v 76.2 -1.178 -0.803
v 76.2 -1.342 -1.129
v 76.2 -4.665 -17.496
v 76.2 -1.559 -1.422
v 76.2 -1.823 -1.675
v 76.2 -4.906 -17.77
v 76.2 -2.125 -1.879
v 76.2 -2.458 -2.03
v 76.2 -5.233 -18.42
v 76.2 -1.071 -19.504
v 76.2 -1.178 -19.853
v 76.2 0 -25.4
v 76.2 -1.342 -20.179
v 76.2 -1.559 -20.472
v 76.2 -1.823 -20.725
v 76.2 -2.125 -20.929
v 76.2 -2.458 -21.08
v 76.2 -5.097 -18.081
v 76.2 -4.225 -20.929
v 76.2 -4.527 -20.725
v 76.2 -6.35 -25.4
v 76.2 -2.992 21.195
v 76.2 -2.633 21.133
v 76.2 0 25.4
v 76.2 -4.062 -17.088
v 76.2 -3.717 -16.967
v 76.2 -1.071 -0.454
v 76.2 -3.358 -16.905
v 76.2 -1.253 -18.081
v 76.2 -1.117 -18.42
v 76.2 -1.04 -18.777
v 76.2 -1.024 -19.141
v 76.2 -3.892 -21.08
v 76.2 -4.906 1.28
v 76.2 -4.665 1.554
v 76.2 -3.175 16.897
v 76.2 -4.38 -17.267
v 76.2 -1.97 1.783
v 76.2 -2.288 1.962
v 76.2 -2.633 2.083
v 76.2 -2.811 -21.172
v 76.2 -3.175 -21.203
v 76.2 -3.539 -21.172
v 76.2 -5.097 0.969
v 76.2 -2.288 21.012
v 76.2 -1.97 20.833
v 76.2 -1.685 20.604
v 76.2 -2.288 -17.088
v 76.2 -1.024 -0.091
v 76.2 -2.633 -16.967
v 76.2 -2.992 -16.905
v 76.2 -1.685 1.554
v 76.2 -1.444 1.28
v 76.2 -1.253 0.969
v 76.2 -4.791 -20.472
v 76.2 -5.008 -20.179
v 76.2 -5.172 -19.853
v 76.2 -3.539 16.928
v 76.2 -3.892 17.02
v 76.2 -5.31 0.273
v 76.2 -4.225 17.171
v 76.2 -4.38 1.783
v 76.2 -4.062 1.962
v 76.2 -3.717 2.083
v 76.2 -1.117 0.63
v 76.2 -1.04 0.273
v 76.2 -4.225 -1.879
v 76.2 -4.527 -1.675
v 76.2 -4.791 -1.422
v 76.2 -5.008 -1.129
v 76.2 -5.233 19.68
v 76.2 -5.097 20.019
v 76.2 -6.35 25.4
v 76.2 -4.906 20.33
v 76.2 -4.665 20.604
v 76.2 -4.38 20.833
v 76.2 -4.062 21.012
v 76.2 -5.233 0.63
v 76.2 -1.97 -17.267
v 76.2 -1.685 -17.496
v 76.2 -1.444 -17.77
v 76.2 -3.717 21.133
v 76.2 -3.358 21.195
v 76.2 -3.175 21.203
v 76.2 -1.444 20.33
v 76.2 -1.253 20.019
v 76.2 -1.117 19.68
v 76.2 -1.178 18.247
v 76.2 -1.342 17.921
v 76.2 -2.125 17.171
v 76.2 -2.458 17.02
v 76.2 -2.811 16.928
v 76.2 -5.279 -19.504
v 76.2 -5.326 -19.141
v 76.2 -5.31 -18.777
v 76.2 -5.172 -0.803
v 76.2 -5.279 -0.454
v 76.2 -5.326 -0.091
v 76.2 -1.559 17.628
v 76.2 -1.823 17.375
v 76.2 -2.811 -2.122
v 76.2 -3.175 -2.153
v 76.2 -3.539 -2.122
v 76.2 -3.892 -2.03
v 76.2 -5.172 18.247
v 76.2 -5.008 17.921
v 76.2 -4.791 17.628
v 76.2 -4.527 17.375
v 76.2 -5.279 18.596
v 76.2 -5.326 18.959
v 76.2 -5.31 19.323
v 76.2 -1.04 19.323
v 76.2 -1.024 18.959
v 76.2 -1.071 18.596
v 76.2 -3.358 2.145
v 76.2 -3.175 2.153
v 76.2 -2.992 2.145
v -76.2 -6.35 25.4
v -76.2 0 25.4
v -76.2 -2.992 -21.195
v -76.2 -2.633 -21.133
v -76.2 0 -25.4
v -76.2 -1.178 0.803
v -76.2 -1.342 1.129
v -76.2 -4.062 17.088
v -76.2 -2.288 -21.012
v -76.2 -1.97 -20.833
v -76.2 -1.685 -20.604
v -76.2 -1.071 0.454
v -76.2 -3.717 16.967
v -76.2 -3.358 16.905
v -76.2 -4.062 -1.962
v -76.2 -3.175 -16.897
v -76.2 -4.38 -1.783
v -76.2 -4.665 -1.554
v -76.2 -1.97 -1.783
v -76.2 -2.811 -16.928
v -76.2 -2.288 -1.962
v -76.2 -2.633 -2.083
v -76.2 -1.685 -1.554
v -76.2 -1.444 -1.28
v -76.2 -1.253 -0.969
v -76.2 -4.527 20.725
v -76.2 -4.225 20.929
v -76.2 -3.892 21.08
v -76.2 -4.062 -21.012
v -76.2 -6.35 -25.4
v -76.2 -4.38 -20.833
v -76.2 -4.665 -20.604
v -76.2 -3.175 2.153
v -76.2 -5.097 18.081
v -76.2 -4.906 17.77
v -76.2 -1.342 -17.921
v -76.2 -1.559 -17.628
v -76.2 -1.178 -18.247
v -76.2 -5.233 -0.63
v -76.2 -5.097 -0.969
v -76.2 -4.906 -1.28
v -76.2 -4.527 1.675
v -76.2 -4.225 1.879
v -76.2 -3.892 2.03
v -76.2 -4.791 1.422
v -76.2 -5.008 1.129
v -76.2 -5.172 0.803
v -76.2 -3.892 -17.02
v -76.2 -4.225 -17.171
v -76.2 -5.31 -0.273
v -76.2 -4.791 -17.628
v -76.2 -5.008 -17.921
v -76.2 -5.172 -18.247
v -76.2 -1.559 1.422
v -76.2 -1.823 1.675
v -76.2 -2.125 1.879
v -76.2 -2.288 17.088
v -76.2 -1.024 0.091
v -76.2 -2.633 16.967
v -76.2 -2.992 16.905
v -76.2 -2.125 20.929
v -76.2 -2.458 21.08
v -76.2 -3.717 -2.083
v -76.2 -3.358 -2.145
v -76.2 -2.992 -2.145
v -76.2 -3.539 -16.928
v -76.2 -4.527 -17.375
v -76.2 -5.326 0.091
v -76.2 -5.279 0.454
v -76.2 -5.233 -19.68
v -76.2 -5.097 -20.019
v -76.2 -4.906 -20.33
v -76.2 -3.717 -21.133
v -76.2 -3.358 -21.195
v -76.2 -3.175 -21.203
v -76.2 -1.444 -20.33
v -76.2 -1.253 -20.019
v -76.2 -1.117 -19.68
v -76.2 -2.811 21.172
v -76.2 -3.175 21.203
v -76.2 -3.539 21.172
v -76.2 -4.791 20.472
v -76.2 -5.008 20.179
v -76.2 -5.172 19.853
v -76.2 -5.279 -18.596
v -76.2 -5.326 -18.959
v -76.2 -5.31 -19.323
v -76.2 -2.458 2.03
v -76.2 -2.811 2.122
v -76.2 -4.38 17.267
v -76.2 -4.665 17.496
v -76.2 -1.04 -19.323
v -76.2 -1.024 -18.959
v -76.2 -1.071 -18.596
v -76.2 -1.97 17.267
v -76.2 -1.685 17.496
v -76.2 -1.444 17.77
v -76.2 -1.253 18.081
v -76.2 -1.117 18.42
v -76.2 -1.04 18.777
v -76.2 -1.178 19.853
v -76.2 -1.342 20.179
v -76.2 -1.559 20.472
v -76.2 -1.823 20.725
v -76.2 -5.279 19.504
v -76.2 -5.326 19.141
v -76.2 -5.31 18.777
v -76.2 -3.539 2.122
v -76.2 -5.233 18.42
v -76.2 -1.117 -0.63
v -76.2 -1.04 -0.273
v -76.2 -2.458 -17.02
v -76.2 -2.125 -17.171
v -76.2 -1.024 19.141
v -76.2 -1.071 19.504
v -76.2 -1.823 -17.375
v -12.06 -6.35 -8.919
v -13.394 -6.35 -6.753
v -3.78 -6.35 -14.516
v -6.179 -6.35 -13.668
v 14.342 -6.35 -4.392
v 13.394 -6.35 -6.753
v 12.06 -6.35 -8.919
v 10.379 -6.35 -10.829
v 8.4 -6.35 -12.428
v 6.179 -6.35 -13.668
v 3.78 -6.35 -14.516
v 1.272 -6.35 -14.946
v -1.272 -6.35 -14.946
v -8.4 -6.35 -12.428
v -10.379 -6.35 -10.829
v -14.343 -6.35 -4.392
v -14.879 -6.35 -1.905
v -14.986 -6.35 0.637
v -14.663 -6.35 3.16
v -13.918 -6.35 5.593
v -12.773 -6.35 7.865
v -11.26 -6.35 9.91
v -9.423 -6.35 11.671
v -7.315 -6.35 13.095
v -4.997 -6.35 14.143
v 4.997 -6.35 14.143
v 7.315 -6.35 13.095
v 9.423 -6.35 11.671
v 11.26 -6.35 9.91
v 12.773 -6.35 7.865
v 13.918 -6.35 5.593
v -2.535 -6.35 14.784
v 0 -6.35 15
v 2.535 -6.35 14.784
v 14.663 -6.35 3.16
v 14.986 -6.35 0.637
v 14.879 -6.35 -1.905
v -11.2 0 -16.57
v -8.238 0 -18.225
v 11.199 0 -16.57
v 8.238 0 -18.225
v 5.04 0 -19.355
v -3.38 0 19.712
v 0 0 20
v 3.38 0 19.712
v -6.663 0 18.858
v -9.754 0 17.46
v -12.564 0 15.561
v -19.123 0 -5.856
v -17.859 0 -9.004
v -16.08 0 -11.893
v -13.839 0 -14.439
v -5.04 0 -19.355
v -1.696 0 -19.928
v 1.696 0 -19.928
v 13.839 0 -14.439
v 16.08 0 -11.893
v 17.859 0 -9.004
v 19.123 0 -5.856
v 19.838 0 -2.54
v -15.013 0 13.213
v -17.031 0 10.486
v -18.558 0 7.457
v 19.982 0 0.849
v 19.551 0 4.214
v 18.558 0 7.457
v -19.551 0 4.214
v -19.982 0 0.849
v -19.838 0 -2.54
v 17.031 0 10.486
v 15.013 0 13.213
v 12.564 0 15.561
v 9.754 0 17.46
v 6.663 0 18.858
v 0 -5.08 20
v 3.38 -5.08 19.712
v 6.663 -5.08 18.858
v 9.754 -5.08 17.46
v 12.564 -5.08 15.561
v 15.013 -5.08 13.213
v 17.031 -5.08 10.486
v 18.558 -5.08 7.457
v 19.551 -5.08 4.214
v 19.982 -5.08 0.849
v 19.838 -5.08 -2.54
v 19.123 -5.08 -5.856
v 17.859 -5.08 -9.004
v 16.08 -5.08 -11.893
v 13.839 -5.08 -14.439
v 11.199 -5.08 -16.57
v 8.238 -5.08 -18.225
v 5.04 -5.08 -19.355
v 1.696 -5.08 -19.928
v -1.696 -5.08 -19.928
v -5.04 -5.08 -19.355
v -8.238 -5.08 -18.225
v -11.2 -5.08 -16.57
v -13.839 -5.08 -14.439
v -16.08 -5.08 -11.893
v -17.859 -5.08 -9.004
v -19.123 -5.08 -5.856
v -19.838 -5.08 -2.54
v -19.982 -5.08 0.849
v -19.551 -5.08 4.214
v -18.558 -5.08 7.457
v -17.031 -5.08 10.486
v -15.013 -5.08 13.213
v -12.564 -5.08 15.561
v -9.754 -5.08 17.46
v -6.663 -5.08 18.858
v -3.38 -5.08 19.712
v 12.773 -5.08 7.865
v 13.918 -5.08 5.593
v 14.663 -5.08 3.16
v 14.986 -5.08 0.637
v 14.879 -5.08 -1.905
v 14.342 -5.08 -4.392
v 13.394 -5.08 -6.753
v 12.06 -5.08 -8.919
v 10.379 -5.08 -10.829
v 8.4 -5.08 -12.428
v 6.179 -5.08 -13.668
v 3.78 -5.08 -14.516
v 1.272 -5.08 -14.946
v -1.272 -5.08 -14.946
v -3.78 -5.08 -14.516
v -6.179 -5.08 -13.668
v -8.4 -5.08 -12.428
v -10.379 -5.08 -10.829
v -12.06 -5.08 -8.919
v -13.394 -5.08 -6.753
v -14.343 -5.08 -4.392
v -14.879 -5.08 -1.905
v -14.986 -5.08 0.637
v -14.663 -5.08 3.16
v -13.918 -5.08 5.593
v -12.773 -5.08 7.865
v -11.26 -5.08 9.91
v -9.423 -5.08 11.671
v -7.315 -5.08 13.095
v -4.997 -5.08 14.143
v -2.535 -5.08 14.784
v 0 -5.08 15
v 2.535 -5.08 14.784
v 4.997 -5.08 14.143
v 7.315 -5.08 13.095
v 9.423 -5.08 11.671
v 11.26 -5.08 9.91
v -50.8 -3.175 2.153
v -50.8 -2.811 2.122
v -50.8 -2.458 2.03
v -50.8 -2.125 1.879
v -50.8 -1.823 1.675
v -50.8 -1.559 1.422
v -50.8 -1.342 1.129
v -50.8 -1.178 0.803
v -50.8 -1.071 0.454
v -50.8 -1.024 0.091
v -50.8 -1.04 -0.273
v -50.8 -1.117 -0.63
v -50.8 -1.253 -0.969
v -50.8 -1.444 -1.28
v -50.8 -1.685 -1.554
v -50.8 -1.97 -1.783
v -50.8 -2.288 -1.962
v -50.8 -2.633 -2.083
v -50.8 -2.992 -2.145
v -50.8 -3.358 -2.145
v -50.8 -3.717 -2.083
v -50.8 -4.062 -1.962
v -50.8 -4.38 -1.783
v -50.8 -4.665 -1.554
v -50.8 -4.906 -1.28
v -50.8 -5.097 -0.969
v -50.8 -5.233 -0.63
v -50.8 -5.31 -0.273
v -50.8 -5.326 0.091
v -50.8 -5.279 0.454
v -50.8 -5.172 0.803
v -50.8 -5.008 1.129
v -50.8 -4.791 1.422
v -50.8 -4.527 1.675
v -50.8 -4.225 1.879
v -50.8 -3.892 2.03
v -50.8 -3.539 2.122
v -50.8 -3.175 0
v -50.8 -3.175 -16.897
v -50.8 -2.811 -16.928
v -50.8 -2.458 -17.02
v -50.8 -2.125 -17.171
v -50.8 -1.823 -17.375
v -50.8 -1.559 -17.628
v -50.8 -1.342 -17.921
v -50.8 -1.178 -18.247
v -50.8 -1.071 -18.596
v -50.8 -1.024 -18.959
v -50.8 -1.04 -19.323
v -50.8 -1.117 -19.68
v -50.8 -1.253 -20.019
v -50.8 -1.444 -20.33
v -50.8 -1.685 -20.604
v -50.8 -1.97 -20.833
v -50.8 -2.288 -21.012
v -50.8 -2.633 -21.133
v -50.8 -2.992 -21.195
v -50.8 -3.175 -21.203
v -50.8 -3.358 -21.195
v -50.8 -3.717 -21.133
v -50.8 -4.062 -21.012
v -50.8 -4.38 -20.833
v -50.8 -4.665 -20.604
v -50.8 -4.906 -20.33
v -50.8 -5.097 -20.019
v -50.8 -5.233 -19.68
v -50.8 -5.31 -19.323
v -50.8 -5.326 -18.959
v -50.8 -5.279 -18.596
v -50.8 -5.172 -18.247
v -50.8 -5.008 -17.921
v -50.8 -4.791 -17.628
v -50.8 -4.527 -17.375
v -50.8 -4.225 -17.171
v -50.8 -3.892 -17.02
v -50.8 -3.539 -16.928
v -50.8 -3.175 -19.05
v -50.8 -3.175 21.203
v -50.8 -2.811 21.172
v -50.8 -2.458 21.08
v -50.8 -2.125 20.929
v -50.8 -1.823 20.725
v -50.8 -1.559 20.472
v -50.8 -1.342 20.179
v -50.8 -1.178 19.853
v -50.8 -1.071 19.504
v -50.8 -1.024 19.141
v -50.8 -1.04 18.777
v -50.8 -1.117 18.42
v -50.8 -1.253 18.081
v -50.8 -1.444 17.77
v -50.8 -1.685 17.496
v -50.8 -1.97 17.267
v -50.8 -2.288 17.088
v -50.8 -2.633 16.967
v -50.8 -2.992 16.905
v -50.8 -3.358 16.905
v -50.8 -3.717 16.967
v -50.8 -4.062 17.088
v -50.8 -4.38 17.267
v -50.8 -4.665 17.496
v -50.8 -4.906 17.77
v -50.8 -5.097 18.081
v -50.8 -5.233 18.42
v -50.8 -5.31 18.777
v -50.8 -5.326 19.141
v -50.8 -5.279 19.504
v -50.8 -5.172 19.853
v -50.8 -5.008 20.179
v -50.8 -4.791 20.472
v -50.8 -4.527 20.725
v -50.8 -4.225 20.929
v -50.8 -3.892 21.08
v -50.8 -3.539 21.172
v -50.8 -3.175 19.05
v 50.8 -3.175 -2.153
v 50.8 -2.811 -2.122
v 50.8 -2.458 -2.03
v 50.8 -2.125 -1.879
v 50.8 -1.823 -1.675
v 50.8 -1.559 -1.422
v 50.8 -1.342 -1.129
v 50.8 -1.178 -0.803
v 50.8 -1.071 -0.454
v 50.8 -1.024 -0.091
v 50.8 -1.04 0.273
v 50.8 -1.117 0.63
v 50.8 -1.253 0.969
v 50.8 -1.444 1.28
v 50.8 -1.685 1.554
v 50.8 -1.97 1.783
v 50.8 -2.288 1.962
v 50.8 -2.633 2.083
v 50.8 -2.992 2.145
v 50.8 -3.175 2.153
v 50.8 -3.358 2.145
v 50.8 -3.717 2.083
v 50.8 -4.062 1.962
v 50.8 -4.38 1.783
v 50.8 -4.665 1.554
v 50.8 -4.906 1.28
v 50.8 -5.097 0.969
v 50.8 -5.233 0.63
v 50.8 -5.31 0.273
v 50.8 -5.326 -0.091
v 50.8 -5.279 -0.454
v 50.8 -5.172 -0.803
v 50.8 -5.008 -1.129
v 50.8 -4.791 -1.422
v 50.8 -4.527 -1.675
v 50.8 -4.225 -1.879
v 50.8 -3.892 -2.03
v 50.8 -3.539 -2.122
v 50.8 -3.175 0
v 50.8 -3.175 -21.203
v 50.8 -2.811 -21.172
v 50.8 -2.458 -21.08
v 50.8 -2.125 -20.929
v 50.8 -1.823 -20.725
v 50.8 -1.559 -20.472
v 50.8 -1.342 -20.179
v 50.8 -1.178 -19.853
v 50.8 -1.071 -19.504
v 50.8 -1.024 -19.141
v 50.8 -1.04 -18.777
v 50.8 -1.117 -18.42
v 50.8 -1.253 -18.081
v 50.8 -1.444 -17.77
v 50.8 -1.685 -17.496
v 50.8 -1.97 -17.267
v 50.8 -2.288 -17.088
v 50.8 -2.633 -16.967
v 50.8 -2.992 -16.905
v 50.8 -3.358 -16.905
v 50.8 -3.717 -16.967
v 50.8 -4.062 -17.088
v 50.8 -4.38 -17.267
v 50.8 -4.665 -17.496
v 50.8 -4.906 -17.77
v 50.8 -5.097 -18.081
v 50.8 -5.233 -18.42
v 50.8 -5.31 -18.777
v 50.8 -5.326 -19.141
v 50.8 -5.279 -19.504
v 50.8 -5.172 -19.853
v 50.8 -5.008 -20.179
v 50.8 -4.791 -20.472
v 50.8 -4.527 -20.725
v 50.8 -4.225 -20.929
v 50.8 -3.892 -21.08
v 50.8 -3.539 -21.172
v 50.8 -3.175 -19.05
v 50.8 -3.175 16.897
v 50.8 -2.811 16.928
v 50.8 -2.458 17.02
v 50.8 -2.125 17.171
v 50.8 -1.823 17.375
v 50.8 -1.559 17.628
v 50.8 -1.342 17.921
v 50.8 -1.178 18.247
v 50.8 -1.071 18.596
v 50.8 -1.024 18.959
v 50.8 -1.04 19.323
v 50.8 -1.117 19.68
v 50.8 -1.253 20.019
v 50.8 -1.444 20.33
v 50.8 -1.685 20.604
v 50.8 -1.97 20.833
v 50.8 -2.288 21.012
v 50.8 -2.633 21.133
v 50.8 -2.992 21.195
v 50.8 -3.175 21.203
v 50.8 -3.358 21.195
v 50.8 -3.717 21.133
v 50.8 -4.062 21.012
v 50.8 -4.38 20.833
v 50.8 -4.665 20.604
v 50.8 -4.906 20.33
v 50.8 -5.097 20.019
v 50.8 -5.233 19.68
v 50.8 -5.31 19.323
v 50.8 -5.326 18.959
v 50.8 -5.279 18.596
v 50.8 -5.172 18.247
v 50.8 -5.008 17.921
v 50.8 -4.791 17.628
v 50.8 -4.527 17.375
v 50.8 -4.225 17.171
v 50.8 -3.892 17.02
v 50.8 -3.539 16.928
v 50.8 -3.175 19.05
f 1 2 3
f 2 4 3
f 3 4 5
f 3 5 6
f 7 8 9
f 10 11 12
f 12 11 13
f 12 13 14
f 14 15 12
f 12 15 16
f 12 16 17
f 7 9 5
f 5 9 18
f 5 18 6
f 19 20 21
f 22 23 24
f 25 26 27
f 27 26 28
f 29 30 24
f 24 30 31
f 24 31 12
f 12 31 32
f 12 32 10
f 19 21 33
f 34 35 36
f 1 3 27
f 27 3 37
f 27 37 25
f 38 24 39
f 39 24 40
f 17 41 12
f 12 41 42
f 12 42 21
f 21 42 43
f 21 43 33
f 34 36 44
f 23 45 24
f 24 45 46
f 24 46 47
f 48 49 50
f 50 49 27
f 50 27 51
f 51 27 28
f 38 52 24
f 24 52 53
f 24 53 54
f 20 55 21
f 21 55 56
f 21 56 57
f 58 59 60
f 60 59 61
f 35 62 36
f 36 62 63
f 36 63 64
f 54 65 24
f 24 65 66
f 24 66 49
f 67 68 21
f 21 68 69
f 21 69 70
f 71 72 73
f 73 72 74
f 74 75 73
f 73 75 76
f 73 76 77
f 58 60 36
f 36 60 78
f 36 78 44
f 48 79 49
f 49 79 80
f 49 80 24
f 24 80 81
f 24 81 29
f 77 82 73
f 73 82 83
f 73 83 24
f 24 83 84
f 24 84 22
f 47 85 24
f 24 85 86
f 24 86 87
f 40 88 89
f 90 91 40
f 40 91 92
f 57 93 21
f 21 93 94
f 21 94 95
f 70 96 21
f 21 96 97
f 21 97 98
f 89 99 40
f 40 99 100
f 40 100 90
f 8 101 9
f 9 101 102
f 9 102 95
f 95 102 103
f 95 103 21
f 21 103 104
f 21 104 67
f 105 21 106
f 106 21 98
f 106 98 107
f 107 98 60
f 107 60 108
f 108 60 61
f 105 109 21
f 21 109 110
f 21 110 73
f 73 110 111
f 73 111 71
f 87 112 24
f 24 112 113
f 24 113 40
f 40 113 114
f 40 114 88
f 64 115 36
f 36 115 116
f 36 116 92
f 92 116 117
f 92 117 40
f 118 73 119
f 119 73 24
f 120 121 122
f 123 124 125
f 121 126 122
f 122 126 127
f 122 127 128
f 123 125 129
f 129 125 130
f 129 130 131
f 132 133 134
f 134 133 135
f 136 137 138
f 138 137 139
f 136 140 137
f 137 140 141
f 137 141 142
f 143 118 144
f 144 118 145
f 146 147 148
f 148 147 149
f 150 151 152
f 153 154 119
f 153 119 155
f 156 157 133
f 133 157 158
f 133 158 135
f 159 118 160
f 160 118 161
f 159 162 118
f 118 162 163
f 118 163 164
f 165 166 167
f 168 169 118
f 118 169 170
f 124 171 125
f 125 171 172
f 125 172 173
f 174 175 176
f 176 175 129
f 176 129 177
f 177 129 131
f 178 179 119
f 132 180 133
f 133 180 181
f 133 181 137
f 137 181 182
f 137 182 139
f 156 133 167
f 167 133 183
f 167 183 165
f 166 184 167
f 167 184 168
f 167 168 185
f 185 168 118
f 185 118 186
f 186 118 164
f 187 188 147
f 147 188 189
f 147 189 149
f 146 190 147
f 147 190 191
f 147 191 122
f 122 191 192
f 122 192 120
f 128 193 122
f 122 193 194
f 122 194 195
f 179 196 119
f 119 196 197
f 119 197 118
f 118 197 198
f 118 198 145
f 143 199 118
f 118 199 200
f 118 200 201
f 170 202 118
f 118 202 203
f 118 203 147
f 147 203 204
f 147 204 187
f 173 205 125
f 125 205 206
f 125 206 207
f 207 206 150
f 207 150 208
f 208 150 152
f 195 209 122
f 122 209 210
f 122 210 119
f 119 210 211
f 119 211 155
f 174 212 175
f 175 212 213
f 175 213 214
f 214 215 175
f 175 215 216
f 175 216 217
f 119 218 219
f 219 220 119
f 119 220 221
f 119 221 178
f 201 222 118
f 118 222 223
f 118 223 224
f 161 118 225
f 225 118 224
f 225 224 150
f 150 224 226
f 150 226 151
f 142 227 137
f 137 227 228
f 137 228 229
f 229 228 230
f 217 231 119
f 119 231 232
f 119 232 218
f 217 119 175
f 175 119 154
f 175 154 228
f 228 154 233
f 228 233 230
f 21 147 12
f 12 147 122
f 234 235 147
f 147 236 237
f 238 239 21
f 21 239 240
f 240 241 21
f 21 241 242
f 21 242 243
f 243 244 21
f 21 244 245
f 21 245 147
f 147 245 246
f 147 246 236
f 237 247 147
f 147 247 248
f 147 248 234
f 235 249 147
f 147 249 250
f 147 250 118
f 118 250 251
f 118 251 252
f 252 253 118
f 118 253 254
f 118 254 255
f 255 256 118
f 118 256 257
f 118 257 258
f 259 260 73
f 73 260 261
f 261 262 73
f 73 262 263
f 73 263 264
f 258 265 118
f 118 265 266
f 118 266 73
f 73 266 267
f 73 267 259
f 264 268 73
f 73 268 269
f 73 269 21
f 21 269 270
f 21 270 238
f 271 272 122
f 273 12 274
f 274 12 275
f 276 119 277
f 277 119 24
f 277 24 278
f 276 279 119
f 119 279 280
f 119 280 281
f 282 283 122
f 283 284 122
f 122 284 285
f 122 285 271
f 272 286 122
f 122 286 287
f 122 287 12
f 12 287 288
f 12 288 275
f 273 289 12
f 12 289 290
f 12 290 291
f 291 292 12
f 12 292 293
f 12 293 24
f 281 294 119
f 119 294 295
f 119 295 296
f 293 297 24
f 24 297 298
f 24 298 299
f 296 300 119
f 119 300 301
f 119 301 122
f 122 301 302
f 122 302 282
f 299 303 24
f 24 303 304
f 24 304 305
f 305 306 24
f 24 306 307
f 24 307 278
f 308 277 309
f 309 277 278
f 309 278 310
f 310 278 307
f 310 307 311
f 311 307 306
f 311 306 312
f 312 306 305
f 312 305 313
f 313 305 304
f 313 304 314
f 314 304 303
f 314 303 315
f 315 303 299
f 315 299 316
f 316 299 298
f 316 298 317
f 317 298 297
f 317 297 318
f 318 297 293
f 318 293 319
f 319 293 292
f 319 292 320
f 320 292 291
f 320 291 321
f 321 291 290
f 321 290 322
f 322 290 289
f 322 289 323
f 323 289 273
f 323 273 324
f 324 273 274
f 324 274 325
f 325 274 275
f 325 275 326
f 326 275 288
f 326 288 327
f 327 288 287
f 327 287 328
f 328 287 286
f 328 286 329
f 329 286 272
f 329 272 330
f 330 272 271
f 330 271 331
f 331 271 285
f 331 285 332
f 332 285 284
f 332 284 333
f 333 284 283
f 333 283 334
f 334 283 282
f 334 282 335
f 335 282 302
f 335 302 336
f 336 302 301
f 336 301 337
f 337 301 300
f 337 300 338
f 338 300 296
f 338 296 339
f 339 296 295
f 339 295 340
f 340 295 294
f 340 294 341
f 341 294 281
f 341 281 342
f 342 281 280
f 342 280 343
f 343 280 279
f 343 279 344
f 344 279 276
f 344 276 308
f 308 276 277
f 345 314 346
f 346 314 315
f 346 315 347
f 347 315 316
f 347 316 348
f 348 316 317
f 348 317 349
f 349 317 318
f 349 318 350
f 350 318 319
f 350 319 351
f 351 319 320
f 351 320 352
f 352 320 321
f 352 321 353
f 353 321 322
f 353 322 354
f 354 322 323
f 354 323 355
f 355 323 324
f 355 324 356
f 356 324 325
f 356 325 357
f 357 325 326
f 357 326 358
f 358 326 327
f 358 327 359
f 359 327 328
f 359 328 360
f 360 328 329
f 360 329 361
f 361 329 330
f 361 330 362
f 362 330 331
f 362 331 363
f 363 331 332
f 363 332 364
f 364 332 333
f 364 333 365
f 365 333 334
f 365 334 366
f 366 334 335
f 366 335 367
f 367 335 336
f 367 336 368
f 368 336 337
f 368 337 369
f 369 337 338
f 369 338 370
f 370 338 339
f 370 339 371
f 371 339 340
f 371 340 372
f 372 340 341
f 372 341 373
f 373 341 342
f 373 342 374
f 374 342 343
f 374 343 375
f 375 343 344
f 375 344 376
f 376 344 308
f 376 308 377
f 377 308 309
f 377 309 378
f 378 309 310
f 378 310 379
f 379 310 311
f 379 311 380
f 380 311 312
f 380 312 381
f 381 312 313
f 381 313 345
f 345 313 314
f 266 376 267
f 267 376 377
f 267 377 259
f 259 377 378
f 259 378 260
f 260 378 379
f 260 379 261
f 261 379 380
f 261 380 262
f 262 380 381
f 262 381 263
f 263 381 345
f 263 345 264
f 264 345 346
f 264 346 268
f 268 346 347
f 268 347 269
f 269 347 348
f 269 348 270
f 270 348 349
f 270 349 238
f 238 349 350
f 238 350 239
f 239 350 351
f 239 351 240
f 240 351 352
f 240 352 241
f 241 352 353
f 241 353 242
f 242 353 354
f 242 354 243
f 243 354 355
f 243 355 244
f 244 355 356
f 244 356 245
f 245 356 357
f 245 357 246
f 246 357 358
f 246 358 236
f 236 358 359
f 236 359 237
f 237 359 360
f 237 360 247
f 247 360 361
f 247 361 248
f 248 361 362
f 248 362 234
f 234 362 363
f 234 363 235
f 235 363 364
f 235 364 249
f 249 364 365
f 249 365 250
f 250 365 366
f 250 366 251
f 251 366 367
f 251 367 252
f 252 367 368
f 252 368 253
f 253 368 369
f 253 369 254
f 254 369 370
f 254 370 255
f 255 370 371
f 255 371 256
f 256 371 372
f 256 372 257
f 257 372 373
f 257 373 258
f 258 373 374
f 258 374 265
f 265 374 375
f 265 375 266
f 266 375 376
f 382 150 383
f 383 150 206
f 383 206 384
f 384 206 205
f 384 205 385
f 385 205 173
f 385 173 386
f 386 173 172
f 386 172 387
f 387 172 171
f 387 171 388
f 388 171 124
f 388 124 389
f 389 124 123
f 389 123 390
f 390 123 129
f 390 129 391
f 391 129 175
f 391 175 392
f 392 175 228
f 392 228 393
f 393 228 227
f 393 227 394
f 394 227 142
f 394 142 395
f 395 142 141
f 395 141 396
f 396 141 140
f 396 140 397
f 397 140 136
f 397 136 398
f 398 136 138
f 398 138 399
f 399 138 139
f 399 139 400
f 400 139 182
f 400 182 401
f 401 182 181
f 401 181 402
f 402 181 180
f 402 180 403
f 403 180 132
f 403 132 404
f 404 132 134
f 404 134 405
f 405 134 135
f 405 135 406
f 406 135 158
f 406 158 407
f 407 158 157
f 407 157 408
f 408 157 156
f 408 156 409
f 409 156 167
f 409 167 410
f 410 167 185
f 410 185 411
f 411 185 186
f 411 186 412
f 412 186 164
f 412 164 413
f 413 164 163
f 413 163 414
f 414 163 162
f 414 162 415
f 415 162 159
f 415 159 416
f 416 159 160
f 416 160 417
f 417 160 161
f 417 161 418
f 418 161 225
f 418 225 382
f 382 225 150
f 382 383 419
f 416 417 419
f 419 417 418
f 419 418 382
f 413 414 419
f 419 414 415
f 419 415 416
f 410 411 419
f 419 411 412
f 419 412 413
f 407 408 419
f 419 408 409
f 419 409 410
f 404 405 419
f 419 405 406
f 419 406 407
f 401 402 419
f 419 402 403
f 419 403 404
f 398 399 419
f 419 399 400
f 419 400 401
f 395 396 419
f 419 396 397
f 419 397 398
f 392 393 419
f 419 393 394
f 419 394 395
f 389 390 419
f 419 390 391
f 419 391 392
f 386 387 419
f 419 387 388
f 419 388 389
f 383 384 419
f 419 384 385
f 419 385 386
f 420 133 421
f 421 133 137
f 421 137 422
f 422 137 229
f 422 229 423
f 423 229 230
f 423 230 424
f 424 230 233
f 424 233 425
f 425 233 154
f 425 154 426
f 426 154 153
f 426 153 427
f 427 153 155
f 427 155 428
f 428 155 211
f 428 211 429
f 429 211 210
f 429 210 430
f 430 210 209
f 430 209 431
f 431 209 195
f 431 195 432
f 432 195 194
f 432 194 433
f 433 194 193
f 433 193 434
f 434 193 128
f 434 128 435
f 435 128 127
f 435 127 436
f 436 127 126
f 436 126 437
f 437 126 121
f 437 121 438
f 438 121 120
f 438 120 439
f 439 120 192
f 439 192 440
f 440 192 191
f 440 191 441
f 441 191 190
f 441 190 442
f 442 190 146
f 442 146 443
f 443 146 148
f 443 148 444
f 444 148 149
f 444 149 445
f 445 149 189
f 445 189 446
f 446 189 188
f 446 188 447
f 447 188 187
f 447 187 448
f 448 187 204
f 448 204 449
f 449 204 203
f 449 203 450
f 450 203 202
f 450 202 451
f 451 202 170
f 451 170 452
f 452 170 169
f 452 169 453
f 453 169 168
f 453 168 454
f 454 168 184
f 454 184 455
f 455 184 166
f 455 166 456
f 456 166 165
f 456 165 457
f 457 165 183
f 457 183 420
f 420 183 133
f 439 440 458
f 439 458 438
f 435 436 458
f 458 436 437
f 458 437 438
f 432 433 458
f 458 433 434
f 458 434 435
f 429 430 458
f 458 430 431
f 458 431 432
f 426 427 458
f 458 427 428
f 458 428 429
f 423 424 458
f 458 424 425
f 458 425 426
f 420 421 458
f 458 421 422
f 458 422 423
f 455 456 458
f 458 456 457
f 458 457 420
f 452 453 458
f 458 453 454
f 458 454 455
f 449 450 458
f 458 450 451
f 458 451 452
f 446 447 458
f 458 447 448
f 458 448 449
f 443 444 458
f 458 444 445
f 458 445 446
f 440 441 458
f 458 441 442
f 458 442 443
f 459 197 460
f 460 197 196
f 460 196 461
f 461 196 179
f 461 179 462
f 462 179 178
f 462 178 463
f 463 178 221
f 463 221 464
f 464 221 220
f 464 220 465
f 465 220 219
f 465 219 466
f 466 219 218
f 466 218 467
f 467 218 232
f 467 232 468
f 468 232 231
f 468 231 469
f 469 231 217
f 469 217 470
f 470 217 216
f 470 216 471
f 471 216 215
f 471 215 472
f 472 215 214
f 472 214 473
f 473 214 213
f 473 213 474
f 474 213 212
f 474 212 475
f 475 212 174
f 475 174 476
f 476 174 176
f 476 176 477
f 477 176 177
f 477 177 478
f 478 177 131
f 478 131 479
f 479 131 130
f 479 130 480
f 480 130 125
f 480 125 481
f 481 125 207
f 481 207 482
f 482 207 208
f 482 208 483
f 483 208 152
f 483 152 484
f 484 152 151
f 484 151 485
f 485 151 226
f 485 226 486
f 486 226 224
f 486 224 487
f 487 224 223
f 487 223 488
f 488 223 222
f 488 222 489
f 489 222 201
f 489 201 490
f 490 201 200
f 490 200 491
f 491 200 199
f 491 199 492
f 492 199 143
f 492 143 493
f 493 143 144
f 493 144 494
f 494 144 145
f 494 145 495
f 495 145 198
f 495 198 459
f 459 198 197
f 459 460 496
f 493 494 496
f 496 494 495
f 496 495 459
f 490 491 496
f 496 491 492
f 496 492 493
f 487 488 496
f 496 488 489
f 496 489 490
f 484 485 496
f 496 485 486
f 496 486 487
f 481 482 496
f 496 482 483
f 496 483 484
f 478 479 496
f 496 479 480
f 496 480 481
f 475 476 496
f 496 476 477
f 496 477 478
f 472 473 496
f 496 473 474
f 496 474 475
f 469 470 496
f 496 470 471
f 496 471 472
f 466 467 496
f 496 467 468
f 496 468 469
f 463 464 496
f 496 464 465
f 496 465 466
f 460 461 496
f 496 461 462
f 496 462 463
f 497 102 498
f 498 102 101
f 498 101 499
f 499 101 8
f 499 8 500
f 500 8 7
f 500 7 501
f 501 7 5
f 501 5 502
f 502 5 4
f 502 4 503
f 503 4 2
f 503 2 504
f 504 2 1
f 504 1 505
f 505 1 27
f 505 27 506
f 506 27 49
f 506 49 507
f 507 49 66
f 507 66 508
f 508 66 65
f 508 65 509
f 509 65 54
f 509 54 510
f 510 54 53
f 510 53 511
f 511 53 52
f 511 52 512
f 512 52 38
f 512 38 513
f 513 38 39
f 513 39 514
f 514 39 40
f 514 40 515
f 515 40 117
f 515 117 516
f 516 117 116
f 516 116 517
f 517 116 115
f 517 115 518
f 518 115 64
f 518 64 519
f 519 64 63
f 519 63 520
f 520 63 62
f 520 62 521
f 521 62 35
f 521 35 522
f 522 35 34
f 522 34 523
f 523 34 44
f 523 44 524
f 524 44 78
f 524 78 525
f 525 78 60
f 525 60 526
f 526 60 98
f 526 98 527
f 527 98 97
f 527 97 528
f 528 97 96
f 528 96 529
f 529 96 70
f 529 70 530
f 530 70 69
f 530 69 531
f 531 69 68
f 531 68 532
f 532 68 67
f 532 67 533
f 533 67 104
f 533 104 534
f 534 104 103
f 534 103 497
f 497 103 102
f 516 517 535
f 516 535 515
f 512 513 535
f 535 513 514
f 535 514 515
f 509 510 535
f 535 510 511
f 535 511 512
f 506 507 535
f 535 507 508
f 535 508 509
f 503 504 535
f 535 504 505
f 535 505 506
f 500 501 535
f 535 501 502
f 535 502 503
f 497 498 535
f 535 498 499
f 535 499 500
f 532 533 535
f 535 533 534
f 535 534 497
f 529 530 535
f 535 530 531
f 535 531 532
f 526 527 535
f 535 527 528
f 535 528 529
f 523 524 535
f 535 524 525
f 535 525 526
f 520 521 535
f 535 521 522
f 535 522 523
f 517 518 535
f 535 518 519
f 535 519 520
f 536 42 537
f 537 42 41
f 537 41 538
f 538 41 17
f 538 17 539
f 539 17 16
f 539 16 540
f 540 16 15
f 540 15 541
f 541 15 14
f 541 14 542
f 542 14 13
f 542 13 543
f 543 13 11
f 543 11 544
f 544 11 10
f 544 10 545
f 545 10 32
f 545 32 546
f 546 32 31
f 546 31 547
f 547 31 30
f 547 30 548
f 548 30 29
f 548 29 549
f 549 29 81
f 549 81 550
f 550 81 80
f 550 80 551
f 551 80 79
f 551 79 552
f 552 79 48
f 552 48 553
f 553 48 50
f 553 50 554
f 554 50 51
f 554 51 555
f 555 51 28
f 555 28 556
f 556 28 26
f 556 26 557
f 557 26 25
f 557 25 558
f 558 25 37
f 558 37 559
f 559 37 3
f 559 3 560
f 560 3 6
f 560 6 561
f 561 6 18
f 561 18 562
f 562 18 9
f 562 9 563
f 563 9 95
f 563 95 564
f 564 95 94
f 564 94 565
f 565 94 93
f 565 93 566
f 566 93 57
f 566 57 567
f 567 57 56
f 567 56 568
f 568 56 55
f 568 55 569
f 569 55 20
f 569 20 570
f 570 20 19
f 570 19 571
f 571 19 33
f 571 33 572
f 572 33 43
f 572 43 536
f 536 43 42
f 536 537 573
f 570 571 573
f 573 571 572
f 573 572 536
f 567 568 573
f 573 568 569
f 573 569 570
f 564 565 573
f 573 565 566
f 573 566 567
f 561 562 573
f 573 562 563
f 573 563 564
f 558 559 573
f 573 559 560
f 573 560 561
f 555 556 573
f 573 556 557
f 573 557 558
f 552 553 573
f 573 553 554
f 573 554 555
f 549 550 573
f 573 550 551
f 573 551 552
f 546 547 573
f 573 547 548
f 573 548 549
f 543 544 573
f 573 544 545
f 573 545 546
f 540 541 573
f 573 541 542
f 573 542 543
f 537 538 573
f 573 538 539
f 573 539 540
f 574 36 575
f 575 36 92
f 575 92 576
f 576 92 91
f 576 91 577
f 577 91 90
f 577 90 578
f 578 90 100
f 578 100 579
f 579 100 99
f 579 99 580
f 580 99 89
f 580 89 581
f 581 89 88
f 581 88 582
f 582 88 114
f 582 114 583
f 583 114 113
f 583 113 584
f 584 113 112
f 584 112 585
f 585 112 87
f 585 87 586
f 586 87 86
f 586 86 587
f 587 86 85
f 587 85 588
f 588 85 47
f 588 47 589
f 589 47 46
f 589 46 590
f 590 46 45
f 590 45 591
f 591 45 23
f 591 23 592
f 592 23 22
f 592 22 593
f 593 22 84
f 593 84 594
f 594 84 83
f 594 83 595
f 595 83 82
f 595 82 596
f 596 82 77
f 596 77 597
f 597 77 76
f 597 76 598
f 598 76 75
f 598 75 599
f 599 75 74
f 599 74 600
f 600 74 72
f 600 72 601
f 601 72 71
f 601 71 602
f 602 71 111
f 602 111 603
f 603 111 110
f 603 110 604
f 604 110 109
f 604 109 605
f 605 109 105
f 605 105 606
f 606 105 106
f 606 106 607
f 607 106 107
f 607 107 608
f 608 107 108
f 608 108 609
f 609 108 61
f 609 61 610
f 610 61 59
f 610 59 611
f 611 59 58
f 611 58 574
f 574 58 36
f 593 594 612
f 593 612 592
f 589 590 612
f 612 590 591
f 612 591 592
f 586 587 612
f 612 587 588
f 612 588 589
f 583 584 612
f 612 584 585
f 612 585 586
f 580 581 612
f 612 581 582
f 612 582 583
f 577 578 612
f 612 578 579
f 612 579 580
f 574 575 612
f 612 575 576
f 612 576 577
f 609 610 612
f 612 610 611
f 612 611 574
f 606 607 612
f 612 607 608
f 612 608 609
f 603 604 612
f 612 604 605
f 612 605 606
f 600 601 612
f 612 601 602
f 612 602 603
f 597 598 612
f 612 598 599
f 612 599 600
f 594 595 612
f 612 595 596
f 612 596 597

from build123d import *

# Parameters (mm, degrees)
SKETCH1_W           = 152.4
SKETCH1_H           = 50.8
BOSS_EXTRUDE1_DEPTH = 6.35
SKETCH2_R           = 20
CUT_EXTRUDE1_DEPTH  = 5.08
SKETCH3_R           = 15
CUT_EXTRUDE2_DEPTH  = 81.48233595
SKETCH5_R           = 2.15265
CUT_EXTRUDE4_DEPTH  = 25.4


with BuildPart() as part:
    # Sketch1 → Boss-Extrude1 (new body)
    with BuildSketch(Plane(origin=(0, 0, 0), x_dir=(1, 0, 0), z_dir=(0, 1, 0))):
        Rectangle(SKETCH1_W, SKETCH1_H)
    extrude(amount=-BOSS_EXTRUDE1_DEPTH)

    # Sketch2 → Cut-Extrude1 (cut)
    with BuildSketch(Plane(origin=(0, 0, 0), x_dir=(1, 0, 0), z_dir=(0, 1, 0))):
        with Locations(Location((0, 0, 0), (0, 0, 270))):
            Circle(SKETCH2_R)
    extrude(amount=-CUT_EXTRUDE1_DEPTH, mode=Mode.SUBTRACT)

    # Sketch3 → Cut-Extrude2 (cut, through all)
    with BuildSketch(Plane(origin=(0, -5.08, 0), x_dir=(1, 0, 0), z_dir=(0, 1, 0))):
        with Locations(Location((0, 0, 0), (0, 0, 270))):
            Circle(SKETCH3_R)
    extrude(amount=-CUT_EXTRUDE2_DEPTH, mode=Mode.SUBTRACT)

    # Sketch5 → Cut-Extrude4 (cut)
    with BuildSketch(Plane.ZY.offset(76.2)):
        with Locations((0, -3.175)):
            Circle(SKETCH5_R)
        with Locations((19.05, -3.175)):
            Circle(SKETCH5_R)
        with Locations(Location((-19.05, -3.175, 0), (0, 0, 180))):
            Circle(SKETCH5_R)
    cut_extrude4 = extrude(amount=-CUT_EXTRUDE4_DEPTH, mode=Mode.SUBTRACT)

    # Mirror1: Cut-Extrude4 across plane
    add(cut_extrude4.mirror(Plane(origin=(0, 0, 0), x_dir=(0, 0, 1), z_dir=(1, 0, 0))), mode=Mode.SUBTRACT)


solid = part.part
